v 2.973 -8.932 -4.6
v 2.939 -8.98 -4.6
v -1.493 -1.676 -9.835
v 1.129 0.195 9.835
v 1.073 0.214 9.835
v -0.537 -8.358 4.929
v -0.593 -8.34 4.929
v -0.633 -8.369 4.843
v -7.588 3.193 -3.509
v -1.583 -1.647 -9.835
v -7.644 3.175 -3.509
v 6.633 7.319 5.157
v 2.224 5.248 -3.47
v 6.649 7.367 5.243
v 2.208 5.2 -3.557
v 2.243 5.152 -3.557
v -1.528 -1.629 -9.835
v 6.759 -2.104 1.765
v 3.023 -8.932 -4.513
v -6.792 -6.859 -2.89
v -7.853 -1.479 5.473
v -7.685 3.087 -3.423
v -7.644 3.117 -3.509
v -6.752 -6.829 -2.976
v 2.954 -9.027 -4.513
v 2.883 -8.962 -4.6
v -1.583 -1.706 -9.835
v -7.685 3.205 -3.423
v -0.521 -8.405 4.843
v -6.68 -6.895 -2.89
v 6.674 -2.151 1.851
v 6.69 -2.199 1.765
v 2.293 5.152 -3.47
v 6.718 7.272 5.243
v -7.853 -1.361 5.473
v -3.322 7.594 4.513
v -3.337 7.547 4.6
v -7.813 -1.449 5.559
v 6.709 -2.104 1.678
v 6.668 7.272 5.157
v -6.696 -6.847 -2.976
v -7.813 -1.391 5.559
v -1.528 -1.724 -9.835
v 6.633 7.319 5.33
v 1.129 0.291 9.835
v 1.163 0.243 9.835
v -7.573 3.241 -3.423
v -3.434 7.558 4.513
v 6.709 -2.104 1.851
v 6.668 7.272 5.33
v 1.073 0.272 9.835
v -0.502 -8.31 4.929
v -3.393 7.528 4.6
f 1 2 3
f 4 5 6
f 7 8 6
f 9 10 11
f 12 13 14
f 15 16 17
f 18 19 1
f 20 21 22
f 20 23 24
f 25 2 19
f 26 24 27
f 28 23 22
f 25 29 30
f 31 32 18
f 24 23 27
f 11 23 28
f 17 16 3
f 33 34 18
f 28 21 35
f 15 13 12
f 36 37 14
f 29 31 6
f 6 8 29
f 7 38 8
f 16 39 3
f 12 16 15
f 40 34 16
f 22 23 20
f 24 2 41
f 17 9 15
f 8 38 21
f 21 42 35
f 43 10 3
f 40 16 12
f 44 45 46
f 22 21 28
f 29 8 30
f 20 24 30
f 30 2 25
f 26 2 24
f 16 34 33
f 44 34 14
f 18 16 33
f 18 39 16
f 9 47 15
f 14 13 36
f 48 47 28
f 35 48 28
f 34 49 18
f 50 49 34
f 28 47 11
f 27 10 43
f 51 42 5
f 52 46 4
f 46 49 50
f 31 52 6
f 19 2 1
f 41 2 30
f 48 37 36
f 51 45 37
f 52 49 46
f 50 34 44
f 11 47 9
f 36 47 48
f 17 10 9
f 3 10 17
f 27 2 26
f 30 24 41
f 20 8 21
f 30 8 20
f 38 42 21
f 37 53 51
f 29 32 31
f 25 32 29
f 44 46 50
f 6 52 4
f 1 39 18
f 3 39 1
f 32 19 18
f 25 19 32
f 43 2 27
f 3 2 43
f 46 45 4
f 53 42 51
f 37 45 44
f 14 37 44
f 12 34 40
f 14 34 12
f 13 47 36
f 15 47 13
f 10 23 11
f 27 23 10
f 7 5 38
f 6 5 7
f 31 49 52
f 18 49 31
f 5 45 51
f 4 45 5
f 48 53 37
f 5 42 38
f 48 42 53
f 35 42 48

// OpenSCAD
// Auto-generated OpenSCAD file

    inner_points = 10*[[-0.33527340439148867, 0.7498997662519438, 0.4513456021203321], [-0.15430438504244254, -0.1676220498145088, -0.9748300137498693], [0.11133893181382774, 0.024295540843831454, 0.9748300137498693], [0.2923079511628739, -0.8932262752226212, -0.4513456021203321], [-0.7603709966932597, 0.3145903298228517, -0.3422523638391476], [-0.055234763477199314, -0.8310337132952008, 0.4842537494941892], [0.21927979692174981, 0.5152429571411032, -0.3470320834716172], [0.6658921331270662, -0.21036126826700907, 0.17645232815792009], [-0.7772187463952425, -0.14199914567561245, 0.54726559786484], [-0.6711068070064338, -0.679991889873274, -0.28897842364432175], [0.661801140766184, 0.7271720747422719, 0.5243237045707335]];

    outer_points = 10*[[-0.6646630702233576, -0.7303166978819896, -0.04476341064086725], [-0.12860392172681917, 0.7303166978819896, 0.6536373544767964], [0.12860392172681917, -0.7303166978819896, -0.6536373544767964], [0.6646630702233576, 0.7303166978819896, 0.04476341064086725], [-0.8529840806486279, 0.22448007402066417, 0.18523294019252518], [0.39946967687864576, 0.22448007402066417, -0.7760908846435595], [-0.12424046378929937, -0.2696576228647949, 0.6593222539336372], [0.6690265281608774, -0.2696576228647949, 0.05044831009770817], [-0.5696102969148841, -0.01991608581139187, -0.7421126349582734], [-0.2552897790787969, 0.8365323986755415, -0.33260243302517273], [0.20051337790222834, -1.1275989896931966, 0.26123739691040415]];

    // Convex hull for inner set (I)
    module inner_hull() {
        hull() {
            for (p = inner_points) {
                translate(p) sphere(r=0.1);
            }
        }
    }

    // Convex hull for outer set (O) minus inner hull (O \ I)
    module outer_minus_inner() {
        difference() {
            hull() {
                for (p = outer_points) {
                    translate(p) sphere(r=0.1);
                }
            }
            inner_hull(); // Subtract inner hull
        }
    }

    // Convex hull for outer set (O) minus all translated inner hulls
    module outer_minus_AllTranslationInner() {
        difference() {
            hull() {
                for (p = outer_points) {
                    translate(p) sphere(r=0.1);
                }
            }
            hull() {
                translate([0,0,50]) inner_hull();
                translate([0,0,-50]) inner_hull();
            }; // Subtract translated inner hulls
        }
    }

    // Difference between outer_minus_inner and outer_minus_AllTranslationInner
    module outer_minus_inner_diff() {
        difference() {
            // Outer minus inner
            difference() {
                hull() {
                    for (p = outer_points) {
                        translate(p) sphere(r=0.1);
                    }
                }
                inner_hull();
            }

            // Subtract Outer minus AllTranslationInner
            difference() {
                hull() {
                    for (p = outer_points) {
                        translate(p) sphere(r=0.1);
                    }
                }
                hull() {
                    translate([0,0,50]) inner_hull();
                    translate([0,0,-50]) inner_hull();
                };
            }
        }
    }

    // Rendering all with colors applied
    color([1, 0, 0, 0.5]) inner_hull(); // Transparent red
    
